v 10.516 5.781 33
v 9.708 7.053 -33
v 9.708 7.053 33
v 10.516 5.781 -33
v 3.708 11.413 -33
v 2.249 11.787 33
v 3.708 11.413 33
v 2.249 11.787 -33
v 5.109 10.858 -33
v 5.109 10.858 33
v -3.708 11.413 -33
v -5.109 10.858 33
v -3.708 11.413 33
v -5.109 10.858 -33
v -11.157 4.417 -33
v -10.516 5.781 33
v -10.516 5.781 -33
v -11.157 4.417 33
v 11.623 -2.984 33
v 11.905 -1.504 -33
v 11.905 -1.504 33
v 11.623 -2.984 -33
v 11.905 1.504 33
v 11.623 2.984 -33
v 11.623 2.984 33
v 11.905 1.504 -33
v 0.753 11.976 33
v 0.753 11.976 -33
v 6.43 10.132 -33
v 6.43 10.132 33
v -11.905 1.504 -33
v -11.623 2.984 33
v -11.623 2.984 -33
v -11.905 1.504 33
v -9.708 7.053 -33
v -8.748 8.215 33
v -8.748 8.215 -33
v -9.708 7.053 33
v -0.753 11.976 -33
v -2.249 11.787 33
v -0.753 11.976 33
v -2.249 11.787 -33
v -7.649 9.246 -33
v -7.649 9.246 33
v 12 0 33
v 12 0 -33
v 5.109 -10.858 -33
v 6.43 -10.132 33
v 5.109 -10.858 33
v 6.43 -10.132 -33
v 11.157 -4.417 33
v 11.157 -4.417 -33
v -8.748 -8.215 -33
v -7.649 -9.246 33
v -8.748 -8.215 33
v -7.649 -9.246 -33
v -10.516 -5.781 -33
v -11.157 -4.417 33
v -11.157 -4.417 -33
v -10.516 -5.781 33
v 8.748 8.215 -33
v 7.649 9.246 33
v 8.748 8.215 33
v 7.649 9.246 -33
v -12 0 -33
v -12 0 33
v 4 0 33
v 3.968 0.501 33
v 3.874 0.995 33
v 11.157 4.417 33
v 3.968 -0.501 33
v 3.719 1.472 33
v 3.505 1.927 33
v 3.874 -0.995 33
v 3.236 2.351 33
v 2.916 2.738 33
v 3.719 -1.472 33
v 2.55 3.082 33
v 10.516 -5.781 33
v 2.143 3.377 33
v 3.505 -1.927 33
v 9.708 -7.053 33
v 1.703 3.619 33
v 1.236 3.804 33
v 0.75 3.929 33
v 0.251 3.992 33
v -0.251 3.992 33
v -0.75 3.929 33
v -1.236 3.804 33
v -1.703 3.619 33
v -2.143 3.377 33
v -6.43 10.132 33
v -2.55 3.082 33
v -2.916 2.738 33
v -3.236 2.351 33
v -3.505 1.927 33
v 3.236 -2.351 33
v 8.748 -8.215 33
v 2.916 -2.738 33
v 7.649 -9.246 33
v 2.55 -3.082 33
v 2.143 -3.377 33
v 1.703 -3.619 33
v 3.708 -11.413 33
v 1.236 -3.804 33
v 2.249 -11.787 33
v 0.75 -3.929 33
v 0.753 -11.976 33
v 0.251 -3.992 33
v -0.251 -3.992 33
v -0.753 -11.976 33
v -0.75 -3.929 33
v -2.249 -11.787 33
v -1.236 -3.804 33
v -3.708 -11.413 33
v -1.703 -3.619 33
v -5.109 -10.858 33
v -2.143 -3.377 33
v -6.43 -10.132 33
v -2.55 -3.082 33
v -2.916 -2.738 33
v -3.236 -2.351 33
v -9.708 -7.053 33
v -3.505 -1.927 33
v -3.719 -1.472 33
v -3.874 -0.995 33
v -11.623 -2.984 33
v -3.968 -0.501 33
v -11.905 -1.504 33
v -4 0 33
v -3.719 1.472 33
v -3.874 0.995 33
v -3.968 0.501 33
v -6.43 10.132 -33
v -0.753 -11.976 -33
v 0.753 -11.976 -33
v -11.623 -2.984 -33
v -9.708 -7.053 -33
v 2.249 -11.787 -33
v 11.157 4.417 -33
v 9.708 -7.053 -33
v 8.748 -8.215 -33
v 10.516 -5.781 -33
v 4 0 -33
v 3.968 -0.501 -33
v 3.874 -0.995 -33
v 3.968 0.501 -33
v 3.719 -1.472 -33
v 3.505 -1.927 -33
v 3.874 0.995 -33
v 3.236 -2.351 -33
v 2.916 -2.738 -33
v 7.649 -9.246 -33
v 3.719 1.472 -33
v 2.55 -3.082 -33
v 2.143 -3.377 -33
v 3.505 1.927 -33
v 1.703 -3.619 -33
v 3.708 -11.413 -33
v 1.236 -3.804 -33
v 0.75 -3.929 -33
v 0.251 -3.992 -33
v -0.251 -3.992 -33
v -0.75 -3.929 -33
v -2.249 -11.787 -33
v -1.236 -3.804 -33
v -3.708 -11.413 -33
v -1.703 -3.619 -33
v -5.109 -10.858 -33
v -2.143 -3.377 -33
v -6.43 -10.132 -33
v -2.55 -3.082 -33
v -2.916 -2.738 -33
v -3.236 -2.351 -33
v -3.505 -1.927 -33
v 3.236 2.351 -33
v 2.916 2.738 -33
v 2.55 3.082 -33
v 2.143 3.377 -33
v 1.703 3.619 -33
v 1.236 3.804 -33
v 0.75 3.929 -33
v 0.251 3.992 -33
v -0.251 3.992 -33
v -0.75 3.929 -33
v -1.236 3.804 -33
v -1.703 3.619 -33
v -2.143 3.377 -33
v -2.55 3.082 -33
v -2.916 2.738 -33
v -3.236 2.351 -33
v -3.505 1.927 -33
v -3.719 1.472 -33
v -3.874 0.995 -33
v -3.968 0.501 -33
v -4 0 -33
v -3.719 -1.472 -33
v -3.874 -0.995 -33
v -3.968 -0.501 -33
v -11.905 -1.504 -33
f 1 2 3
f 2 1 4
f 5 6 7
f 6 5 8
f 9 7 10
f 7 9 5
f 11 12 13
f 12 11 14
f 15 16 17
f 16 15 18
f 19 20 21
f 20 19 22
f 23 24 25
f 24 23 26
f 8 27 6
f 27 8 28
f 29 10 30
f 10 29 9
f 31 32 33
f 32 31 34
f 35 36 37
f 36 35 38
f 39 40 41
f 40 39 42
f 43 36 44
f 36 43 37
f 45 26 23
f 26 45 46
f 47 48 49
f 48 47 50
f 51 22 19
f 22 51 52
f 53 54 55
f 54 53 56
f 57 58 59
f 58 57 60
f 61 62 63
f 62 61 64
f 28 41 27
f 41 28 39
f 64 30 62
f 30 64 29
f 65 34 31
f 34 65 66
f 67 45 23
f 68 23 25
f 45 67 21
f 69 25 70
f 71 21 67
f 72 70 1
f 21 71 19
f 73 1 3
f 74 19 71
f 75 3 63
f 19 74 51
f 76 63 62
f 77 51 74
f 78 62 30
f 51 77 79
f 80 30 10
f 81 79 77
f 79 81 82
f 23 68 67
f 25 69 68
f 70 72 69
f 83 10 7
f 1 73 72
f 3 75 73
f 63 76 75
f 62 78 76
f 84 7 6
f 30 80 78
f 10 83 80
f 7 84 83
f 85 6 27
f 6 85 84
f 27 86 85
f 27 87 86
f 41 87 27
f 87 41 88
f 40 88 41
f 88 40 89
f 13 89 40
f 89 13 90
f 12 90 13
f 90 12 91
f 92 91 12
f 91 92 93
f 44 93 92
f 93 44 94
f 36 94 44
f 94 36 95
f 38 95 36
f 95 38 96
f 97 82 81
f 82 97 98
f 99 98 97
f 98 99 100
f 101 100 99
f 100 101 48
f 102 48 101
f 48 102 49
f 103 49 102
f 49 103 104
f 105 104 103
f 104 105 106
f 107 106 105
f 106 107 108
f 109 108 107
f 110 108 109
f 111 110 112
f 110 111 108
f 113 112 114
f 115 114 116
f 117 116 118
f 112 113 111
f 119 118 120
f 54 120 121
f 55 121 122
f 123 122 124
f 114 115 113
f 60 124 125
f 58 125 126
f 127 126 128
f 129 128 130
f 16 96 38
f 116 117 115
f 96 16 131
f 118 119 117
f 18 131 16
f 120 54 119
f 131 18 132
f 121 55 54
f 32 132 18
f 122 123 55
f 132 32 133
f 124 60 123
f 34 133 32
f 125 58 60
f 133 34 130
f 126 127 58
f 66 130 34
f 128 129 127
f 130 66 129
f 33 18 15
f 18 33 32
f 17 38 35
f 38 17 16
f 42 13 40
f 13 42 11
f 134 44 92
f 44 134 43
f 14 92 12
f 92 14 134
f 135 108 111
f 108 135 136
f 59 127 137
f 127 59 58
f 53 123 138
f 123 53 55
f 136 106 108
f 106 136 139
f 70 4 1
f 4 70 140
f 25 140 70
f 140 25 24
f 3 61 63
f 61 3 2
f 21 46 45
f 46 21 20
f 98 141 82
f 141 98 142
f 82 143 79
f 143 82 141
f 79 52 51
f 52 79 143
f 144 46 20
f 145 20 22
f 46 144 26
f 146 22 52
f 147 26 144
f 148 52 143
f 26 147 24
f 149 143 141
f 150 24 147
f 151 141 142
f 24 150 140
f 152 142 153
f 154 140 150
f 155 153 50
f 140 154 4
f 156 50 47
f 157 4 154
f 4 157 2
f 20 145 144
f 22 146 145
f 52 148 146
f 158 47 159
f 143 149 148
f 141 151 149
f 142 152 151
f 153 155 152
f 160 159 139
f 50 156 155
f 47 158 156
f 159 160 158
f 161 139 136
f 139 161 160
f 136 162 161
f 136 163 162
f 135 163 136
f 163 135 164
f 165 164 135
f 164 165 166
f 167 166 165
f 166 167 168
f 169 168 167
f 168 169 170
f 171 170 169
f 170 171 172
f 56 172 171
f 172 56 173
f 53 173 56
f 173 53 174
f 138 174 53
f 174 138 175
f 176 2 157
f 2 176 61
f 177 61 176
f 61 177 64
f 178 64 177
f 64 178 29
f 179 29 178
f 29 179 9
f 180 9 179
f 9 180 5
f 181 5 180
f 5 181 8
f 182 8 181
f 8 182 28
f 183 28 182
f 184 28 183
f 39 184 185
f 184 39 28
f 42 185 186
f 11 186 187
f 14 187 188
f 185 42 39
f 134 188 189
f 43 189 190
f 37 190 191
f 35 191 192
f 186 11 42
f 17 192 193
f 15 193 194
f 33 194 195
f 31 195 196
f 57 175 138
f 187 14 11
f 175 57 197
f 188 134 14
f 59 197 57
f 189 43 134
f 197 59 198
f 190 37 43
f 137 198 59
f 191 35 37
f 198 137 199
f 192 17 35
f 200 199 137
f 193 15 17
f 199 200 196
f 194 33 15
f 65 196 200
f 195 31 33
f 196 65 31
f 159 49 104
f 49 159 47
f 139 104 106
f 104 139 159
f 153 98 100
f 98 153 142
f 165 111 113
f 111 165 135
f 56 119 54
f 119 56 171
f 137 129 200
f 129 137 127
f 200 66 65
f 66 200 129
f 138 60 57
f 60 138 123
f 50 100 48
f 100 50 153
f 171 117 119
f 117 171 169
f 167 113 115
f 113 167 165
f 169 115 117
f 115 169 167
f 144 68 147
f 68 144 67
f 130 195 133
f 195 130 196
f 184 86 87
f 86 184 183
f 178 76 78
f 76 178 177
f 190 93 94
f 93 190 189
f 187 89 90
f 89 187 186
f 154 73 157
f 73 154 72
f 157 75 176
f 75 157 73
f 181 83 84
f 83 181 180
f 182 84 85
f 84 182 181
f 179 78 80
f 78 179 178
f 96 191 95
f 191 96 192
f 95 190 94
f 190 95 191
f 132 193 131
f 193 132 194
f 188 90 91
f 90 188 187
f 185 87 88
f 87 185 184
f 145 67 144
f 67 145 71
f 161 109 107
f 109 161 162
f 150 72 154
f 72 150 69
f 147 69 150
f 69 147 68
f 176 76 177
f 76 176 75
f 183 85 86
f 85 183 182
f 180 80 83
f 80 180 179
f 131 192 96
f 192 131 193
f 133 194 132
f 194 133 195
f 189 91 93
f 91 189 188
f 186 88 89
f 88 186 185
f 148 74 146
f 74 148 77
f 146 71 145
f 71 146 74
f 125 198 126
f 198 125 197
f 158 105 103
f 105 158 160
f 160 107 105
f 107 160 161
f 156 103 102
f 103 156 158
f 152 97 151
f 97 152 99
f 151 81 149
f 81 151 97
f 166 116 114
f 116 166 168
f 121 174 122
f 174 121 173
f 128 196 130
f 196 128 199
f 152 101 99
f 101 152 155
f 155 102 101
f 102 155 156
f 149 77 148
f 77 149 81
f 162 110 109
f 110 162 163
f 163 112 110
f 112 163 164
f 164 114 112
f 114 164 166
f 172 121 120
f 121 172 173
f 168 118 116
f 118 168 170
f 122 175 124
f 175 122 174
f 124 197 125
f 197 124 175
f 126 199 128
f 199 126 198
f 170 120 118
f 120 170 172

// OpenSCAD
$fn = 50;


difference() {
	union() {
		translate(v = [0, 0, -33.0000000000]) {
			cylinder(h = 66, r = 12.0000000000);
		}
	}
	union() {
		translate(v = [0, 0, -100.0000000000]) {
			cylinder(h = 200, r = 4);
		}
	}
}
